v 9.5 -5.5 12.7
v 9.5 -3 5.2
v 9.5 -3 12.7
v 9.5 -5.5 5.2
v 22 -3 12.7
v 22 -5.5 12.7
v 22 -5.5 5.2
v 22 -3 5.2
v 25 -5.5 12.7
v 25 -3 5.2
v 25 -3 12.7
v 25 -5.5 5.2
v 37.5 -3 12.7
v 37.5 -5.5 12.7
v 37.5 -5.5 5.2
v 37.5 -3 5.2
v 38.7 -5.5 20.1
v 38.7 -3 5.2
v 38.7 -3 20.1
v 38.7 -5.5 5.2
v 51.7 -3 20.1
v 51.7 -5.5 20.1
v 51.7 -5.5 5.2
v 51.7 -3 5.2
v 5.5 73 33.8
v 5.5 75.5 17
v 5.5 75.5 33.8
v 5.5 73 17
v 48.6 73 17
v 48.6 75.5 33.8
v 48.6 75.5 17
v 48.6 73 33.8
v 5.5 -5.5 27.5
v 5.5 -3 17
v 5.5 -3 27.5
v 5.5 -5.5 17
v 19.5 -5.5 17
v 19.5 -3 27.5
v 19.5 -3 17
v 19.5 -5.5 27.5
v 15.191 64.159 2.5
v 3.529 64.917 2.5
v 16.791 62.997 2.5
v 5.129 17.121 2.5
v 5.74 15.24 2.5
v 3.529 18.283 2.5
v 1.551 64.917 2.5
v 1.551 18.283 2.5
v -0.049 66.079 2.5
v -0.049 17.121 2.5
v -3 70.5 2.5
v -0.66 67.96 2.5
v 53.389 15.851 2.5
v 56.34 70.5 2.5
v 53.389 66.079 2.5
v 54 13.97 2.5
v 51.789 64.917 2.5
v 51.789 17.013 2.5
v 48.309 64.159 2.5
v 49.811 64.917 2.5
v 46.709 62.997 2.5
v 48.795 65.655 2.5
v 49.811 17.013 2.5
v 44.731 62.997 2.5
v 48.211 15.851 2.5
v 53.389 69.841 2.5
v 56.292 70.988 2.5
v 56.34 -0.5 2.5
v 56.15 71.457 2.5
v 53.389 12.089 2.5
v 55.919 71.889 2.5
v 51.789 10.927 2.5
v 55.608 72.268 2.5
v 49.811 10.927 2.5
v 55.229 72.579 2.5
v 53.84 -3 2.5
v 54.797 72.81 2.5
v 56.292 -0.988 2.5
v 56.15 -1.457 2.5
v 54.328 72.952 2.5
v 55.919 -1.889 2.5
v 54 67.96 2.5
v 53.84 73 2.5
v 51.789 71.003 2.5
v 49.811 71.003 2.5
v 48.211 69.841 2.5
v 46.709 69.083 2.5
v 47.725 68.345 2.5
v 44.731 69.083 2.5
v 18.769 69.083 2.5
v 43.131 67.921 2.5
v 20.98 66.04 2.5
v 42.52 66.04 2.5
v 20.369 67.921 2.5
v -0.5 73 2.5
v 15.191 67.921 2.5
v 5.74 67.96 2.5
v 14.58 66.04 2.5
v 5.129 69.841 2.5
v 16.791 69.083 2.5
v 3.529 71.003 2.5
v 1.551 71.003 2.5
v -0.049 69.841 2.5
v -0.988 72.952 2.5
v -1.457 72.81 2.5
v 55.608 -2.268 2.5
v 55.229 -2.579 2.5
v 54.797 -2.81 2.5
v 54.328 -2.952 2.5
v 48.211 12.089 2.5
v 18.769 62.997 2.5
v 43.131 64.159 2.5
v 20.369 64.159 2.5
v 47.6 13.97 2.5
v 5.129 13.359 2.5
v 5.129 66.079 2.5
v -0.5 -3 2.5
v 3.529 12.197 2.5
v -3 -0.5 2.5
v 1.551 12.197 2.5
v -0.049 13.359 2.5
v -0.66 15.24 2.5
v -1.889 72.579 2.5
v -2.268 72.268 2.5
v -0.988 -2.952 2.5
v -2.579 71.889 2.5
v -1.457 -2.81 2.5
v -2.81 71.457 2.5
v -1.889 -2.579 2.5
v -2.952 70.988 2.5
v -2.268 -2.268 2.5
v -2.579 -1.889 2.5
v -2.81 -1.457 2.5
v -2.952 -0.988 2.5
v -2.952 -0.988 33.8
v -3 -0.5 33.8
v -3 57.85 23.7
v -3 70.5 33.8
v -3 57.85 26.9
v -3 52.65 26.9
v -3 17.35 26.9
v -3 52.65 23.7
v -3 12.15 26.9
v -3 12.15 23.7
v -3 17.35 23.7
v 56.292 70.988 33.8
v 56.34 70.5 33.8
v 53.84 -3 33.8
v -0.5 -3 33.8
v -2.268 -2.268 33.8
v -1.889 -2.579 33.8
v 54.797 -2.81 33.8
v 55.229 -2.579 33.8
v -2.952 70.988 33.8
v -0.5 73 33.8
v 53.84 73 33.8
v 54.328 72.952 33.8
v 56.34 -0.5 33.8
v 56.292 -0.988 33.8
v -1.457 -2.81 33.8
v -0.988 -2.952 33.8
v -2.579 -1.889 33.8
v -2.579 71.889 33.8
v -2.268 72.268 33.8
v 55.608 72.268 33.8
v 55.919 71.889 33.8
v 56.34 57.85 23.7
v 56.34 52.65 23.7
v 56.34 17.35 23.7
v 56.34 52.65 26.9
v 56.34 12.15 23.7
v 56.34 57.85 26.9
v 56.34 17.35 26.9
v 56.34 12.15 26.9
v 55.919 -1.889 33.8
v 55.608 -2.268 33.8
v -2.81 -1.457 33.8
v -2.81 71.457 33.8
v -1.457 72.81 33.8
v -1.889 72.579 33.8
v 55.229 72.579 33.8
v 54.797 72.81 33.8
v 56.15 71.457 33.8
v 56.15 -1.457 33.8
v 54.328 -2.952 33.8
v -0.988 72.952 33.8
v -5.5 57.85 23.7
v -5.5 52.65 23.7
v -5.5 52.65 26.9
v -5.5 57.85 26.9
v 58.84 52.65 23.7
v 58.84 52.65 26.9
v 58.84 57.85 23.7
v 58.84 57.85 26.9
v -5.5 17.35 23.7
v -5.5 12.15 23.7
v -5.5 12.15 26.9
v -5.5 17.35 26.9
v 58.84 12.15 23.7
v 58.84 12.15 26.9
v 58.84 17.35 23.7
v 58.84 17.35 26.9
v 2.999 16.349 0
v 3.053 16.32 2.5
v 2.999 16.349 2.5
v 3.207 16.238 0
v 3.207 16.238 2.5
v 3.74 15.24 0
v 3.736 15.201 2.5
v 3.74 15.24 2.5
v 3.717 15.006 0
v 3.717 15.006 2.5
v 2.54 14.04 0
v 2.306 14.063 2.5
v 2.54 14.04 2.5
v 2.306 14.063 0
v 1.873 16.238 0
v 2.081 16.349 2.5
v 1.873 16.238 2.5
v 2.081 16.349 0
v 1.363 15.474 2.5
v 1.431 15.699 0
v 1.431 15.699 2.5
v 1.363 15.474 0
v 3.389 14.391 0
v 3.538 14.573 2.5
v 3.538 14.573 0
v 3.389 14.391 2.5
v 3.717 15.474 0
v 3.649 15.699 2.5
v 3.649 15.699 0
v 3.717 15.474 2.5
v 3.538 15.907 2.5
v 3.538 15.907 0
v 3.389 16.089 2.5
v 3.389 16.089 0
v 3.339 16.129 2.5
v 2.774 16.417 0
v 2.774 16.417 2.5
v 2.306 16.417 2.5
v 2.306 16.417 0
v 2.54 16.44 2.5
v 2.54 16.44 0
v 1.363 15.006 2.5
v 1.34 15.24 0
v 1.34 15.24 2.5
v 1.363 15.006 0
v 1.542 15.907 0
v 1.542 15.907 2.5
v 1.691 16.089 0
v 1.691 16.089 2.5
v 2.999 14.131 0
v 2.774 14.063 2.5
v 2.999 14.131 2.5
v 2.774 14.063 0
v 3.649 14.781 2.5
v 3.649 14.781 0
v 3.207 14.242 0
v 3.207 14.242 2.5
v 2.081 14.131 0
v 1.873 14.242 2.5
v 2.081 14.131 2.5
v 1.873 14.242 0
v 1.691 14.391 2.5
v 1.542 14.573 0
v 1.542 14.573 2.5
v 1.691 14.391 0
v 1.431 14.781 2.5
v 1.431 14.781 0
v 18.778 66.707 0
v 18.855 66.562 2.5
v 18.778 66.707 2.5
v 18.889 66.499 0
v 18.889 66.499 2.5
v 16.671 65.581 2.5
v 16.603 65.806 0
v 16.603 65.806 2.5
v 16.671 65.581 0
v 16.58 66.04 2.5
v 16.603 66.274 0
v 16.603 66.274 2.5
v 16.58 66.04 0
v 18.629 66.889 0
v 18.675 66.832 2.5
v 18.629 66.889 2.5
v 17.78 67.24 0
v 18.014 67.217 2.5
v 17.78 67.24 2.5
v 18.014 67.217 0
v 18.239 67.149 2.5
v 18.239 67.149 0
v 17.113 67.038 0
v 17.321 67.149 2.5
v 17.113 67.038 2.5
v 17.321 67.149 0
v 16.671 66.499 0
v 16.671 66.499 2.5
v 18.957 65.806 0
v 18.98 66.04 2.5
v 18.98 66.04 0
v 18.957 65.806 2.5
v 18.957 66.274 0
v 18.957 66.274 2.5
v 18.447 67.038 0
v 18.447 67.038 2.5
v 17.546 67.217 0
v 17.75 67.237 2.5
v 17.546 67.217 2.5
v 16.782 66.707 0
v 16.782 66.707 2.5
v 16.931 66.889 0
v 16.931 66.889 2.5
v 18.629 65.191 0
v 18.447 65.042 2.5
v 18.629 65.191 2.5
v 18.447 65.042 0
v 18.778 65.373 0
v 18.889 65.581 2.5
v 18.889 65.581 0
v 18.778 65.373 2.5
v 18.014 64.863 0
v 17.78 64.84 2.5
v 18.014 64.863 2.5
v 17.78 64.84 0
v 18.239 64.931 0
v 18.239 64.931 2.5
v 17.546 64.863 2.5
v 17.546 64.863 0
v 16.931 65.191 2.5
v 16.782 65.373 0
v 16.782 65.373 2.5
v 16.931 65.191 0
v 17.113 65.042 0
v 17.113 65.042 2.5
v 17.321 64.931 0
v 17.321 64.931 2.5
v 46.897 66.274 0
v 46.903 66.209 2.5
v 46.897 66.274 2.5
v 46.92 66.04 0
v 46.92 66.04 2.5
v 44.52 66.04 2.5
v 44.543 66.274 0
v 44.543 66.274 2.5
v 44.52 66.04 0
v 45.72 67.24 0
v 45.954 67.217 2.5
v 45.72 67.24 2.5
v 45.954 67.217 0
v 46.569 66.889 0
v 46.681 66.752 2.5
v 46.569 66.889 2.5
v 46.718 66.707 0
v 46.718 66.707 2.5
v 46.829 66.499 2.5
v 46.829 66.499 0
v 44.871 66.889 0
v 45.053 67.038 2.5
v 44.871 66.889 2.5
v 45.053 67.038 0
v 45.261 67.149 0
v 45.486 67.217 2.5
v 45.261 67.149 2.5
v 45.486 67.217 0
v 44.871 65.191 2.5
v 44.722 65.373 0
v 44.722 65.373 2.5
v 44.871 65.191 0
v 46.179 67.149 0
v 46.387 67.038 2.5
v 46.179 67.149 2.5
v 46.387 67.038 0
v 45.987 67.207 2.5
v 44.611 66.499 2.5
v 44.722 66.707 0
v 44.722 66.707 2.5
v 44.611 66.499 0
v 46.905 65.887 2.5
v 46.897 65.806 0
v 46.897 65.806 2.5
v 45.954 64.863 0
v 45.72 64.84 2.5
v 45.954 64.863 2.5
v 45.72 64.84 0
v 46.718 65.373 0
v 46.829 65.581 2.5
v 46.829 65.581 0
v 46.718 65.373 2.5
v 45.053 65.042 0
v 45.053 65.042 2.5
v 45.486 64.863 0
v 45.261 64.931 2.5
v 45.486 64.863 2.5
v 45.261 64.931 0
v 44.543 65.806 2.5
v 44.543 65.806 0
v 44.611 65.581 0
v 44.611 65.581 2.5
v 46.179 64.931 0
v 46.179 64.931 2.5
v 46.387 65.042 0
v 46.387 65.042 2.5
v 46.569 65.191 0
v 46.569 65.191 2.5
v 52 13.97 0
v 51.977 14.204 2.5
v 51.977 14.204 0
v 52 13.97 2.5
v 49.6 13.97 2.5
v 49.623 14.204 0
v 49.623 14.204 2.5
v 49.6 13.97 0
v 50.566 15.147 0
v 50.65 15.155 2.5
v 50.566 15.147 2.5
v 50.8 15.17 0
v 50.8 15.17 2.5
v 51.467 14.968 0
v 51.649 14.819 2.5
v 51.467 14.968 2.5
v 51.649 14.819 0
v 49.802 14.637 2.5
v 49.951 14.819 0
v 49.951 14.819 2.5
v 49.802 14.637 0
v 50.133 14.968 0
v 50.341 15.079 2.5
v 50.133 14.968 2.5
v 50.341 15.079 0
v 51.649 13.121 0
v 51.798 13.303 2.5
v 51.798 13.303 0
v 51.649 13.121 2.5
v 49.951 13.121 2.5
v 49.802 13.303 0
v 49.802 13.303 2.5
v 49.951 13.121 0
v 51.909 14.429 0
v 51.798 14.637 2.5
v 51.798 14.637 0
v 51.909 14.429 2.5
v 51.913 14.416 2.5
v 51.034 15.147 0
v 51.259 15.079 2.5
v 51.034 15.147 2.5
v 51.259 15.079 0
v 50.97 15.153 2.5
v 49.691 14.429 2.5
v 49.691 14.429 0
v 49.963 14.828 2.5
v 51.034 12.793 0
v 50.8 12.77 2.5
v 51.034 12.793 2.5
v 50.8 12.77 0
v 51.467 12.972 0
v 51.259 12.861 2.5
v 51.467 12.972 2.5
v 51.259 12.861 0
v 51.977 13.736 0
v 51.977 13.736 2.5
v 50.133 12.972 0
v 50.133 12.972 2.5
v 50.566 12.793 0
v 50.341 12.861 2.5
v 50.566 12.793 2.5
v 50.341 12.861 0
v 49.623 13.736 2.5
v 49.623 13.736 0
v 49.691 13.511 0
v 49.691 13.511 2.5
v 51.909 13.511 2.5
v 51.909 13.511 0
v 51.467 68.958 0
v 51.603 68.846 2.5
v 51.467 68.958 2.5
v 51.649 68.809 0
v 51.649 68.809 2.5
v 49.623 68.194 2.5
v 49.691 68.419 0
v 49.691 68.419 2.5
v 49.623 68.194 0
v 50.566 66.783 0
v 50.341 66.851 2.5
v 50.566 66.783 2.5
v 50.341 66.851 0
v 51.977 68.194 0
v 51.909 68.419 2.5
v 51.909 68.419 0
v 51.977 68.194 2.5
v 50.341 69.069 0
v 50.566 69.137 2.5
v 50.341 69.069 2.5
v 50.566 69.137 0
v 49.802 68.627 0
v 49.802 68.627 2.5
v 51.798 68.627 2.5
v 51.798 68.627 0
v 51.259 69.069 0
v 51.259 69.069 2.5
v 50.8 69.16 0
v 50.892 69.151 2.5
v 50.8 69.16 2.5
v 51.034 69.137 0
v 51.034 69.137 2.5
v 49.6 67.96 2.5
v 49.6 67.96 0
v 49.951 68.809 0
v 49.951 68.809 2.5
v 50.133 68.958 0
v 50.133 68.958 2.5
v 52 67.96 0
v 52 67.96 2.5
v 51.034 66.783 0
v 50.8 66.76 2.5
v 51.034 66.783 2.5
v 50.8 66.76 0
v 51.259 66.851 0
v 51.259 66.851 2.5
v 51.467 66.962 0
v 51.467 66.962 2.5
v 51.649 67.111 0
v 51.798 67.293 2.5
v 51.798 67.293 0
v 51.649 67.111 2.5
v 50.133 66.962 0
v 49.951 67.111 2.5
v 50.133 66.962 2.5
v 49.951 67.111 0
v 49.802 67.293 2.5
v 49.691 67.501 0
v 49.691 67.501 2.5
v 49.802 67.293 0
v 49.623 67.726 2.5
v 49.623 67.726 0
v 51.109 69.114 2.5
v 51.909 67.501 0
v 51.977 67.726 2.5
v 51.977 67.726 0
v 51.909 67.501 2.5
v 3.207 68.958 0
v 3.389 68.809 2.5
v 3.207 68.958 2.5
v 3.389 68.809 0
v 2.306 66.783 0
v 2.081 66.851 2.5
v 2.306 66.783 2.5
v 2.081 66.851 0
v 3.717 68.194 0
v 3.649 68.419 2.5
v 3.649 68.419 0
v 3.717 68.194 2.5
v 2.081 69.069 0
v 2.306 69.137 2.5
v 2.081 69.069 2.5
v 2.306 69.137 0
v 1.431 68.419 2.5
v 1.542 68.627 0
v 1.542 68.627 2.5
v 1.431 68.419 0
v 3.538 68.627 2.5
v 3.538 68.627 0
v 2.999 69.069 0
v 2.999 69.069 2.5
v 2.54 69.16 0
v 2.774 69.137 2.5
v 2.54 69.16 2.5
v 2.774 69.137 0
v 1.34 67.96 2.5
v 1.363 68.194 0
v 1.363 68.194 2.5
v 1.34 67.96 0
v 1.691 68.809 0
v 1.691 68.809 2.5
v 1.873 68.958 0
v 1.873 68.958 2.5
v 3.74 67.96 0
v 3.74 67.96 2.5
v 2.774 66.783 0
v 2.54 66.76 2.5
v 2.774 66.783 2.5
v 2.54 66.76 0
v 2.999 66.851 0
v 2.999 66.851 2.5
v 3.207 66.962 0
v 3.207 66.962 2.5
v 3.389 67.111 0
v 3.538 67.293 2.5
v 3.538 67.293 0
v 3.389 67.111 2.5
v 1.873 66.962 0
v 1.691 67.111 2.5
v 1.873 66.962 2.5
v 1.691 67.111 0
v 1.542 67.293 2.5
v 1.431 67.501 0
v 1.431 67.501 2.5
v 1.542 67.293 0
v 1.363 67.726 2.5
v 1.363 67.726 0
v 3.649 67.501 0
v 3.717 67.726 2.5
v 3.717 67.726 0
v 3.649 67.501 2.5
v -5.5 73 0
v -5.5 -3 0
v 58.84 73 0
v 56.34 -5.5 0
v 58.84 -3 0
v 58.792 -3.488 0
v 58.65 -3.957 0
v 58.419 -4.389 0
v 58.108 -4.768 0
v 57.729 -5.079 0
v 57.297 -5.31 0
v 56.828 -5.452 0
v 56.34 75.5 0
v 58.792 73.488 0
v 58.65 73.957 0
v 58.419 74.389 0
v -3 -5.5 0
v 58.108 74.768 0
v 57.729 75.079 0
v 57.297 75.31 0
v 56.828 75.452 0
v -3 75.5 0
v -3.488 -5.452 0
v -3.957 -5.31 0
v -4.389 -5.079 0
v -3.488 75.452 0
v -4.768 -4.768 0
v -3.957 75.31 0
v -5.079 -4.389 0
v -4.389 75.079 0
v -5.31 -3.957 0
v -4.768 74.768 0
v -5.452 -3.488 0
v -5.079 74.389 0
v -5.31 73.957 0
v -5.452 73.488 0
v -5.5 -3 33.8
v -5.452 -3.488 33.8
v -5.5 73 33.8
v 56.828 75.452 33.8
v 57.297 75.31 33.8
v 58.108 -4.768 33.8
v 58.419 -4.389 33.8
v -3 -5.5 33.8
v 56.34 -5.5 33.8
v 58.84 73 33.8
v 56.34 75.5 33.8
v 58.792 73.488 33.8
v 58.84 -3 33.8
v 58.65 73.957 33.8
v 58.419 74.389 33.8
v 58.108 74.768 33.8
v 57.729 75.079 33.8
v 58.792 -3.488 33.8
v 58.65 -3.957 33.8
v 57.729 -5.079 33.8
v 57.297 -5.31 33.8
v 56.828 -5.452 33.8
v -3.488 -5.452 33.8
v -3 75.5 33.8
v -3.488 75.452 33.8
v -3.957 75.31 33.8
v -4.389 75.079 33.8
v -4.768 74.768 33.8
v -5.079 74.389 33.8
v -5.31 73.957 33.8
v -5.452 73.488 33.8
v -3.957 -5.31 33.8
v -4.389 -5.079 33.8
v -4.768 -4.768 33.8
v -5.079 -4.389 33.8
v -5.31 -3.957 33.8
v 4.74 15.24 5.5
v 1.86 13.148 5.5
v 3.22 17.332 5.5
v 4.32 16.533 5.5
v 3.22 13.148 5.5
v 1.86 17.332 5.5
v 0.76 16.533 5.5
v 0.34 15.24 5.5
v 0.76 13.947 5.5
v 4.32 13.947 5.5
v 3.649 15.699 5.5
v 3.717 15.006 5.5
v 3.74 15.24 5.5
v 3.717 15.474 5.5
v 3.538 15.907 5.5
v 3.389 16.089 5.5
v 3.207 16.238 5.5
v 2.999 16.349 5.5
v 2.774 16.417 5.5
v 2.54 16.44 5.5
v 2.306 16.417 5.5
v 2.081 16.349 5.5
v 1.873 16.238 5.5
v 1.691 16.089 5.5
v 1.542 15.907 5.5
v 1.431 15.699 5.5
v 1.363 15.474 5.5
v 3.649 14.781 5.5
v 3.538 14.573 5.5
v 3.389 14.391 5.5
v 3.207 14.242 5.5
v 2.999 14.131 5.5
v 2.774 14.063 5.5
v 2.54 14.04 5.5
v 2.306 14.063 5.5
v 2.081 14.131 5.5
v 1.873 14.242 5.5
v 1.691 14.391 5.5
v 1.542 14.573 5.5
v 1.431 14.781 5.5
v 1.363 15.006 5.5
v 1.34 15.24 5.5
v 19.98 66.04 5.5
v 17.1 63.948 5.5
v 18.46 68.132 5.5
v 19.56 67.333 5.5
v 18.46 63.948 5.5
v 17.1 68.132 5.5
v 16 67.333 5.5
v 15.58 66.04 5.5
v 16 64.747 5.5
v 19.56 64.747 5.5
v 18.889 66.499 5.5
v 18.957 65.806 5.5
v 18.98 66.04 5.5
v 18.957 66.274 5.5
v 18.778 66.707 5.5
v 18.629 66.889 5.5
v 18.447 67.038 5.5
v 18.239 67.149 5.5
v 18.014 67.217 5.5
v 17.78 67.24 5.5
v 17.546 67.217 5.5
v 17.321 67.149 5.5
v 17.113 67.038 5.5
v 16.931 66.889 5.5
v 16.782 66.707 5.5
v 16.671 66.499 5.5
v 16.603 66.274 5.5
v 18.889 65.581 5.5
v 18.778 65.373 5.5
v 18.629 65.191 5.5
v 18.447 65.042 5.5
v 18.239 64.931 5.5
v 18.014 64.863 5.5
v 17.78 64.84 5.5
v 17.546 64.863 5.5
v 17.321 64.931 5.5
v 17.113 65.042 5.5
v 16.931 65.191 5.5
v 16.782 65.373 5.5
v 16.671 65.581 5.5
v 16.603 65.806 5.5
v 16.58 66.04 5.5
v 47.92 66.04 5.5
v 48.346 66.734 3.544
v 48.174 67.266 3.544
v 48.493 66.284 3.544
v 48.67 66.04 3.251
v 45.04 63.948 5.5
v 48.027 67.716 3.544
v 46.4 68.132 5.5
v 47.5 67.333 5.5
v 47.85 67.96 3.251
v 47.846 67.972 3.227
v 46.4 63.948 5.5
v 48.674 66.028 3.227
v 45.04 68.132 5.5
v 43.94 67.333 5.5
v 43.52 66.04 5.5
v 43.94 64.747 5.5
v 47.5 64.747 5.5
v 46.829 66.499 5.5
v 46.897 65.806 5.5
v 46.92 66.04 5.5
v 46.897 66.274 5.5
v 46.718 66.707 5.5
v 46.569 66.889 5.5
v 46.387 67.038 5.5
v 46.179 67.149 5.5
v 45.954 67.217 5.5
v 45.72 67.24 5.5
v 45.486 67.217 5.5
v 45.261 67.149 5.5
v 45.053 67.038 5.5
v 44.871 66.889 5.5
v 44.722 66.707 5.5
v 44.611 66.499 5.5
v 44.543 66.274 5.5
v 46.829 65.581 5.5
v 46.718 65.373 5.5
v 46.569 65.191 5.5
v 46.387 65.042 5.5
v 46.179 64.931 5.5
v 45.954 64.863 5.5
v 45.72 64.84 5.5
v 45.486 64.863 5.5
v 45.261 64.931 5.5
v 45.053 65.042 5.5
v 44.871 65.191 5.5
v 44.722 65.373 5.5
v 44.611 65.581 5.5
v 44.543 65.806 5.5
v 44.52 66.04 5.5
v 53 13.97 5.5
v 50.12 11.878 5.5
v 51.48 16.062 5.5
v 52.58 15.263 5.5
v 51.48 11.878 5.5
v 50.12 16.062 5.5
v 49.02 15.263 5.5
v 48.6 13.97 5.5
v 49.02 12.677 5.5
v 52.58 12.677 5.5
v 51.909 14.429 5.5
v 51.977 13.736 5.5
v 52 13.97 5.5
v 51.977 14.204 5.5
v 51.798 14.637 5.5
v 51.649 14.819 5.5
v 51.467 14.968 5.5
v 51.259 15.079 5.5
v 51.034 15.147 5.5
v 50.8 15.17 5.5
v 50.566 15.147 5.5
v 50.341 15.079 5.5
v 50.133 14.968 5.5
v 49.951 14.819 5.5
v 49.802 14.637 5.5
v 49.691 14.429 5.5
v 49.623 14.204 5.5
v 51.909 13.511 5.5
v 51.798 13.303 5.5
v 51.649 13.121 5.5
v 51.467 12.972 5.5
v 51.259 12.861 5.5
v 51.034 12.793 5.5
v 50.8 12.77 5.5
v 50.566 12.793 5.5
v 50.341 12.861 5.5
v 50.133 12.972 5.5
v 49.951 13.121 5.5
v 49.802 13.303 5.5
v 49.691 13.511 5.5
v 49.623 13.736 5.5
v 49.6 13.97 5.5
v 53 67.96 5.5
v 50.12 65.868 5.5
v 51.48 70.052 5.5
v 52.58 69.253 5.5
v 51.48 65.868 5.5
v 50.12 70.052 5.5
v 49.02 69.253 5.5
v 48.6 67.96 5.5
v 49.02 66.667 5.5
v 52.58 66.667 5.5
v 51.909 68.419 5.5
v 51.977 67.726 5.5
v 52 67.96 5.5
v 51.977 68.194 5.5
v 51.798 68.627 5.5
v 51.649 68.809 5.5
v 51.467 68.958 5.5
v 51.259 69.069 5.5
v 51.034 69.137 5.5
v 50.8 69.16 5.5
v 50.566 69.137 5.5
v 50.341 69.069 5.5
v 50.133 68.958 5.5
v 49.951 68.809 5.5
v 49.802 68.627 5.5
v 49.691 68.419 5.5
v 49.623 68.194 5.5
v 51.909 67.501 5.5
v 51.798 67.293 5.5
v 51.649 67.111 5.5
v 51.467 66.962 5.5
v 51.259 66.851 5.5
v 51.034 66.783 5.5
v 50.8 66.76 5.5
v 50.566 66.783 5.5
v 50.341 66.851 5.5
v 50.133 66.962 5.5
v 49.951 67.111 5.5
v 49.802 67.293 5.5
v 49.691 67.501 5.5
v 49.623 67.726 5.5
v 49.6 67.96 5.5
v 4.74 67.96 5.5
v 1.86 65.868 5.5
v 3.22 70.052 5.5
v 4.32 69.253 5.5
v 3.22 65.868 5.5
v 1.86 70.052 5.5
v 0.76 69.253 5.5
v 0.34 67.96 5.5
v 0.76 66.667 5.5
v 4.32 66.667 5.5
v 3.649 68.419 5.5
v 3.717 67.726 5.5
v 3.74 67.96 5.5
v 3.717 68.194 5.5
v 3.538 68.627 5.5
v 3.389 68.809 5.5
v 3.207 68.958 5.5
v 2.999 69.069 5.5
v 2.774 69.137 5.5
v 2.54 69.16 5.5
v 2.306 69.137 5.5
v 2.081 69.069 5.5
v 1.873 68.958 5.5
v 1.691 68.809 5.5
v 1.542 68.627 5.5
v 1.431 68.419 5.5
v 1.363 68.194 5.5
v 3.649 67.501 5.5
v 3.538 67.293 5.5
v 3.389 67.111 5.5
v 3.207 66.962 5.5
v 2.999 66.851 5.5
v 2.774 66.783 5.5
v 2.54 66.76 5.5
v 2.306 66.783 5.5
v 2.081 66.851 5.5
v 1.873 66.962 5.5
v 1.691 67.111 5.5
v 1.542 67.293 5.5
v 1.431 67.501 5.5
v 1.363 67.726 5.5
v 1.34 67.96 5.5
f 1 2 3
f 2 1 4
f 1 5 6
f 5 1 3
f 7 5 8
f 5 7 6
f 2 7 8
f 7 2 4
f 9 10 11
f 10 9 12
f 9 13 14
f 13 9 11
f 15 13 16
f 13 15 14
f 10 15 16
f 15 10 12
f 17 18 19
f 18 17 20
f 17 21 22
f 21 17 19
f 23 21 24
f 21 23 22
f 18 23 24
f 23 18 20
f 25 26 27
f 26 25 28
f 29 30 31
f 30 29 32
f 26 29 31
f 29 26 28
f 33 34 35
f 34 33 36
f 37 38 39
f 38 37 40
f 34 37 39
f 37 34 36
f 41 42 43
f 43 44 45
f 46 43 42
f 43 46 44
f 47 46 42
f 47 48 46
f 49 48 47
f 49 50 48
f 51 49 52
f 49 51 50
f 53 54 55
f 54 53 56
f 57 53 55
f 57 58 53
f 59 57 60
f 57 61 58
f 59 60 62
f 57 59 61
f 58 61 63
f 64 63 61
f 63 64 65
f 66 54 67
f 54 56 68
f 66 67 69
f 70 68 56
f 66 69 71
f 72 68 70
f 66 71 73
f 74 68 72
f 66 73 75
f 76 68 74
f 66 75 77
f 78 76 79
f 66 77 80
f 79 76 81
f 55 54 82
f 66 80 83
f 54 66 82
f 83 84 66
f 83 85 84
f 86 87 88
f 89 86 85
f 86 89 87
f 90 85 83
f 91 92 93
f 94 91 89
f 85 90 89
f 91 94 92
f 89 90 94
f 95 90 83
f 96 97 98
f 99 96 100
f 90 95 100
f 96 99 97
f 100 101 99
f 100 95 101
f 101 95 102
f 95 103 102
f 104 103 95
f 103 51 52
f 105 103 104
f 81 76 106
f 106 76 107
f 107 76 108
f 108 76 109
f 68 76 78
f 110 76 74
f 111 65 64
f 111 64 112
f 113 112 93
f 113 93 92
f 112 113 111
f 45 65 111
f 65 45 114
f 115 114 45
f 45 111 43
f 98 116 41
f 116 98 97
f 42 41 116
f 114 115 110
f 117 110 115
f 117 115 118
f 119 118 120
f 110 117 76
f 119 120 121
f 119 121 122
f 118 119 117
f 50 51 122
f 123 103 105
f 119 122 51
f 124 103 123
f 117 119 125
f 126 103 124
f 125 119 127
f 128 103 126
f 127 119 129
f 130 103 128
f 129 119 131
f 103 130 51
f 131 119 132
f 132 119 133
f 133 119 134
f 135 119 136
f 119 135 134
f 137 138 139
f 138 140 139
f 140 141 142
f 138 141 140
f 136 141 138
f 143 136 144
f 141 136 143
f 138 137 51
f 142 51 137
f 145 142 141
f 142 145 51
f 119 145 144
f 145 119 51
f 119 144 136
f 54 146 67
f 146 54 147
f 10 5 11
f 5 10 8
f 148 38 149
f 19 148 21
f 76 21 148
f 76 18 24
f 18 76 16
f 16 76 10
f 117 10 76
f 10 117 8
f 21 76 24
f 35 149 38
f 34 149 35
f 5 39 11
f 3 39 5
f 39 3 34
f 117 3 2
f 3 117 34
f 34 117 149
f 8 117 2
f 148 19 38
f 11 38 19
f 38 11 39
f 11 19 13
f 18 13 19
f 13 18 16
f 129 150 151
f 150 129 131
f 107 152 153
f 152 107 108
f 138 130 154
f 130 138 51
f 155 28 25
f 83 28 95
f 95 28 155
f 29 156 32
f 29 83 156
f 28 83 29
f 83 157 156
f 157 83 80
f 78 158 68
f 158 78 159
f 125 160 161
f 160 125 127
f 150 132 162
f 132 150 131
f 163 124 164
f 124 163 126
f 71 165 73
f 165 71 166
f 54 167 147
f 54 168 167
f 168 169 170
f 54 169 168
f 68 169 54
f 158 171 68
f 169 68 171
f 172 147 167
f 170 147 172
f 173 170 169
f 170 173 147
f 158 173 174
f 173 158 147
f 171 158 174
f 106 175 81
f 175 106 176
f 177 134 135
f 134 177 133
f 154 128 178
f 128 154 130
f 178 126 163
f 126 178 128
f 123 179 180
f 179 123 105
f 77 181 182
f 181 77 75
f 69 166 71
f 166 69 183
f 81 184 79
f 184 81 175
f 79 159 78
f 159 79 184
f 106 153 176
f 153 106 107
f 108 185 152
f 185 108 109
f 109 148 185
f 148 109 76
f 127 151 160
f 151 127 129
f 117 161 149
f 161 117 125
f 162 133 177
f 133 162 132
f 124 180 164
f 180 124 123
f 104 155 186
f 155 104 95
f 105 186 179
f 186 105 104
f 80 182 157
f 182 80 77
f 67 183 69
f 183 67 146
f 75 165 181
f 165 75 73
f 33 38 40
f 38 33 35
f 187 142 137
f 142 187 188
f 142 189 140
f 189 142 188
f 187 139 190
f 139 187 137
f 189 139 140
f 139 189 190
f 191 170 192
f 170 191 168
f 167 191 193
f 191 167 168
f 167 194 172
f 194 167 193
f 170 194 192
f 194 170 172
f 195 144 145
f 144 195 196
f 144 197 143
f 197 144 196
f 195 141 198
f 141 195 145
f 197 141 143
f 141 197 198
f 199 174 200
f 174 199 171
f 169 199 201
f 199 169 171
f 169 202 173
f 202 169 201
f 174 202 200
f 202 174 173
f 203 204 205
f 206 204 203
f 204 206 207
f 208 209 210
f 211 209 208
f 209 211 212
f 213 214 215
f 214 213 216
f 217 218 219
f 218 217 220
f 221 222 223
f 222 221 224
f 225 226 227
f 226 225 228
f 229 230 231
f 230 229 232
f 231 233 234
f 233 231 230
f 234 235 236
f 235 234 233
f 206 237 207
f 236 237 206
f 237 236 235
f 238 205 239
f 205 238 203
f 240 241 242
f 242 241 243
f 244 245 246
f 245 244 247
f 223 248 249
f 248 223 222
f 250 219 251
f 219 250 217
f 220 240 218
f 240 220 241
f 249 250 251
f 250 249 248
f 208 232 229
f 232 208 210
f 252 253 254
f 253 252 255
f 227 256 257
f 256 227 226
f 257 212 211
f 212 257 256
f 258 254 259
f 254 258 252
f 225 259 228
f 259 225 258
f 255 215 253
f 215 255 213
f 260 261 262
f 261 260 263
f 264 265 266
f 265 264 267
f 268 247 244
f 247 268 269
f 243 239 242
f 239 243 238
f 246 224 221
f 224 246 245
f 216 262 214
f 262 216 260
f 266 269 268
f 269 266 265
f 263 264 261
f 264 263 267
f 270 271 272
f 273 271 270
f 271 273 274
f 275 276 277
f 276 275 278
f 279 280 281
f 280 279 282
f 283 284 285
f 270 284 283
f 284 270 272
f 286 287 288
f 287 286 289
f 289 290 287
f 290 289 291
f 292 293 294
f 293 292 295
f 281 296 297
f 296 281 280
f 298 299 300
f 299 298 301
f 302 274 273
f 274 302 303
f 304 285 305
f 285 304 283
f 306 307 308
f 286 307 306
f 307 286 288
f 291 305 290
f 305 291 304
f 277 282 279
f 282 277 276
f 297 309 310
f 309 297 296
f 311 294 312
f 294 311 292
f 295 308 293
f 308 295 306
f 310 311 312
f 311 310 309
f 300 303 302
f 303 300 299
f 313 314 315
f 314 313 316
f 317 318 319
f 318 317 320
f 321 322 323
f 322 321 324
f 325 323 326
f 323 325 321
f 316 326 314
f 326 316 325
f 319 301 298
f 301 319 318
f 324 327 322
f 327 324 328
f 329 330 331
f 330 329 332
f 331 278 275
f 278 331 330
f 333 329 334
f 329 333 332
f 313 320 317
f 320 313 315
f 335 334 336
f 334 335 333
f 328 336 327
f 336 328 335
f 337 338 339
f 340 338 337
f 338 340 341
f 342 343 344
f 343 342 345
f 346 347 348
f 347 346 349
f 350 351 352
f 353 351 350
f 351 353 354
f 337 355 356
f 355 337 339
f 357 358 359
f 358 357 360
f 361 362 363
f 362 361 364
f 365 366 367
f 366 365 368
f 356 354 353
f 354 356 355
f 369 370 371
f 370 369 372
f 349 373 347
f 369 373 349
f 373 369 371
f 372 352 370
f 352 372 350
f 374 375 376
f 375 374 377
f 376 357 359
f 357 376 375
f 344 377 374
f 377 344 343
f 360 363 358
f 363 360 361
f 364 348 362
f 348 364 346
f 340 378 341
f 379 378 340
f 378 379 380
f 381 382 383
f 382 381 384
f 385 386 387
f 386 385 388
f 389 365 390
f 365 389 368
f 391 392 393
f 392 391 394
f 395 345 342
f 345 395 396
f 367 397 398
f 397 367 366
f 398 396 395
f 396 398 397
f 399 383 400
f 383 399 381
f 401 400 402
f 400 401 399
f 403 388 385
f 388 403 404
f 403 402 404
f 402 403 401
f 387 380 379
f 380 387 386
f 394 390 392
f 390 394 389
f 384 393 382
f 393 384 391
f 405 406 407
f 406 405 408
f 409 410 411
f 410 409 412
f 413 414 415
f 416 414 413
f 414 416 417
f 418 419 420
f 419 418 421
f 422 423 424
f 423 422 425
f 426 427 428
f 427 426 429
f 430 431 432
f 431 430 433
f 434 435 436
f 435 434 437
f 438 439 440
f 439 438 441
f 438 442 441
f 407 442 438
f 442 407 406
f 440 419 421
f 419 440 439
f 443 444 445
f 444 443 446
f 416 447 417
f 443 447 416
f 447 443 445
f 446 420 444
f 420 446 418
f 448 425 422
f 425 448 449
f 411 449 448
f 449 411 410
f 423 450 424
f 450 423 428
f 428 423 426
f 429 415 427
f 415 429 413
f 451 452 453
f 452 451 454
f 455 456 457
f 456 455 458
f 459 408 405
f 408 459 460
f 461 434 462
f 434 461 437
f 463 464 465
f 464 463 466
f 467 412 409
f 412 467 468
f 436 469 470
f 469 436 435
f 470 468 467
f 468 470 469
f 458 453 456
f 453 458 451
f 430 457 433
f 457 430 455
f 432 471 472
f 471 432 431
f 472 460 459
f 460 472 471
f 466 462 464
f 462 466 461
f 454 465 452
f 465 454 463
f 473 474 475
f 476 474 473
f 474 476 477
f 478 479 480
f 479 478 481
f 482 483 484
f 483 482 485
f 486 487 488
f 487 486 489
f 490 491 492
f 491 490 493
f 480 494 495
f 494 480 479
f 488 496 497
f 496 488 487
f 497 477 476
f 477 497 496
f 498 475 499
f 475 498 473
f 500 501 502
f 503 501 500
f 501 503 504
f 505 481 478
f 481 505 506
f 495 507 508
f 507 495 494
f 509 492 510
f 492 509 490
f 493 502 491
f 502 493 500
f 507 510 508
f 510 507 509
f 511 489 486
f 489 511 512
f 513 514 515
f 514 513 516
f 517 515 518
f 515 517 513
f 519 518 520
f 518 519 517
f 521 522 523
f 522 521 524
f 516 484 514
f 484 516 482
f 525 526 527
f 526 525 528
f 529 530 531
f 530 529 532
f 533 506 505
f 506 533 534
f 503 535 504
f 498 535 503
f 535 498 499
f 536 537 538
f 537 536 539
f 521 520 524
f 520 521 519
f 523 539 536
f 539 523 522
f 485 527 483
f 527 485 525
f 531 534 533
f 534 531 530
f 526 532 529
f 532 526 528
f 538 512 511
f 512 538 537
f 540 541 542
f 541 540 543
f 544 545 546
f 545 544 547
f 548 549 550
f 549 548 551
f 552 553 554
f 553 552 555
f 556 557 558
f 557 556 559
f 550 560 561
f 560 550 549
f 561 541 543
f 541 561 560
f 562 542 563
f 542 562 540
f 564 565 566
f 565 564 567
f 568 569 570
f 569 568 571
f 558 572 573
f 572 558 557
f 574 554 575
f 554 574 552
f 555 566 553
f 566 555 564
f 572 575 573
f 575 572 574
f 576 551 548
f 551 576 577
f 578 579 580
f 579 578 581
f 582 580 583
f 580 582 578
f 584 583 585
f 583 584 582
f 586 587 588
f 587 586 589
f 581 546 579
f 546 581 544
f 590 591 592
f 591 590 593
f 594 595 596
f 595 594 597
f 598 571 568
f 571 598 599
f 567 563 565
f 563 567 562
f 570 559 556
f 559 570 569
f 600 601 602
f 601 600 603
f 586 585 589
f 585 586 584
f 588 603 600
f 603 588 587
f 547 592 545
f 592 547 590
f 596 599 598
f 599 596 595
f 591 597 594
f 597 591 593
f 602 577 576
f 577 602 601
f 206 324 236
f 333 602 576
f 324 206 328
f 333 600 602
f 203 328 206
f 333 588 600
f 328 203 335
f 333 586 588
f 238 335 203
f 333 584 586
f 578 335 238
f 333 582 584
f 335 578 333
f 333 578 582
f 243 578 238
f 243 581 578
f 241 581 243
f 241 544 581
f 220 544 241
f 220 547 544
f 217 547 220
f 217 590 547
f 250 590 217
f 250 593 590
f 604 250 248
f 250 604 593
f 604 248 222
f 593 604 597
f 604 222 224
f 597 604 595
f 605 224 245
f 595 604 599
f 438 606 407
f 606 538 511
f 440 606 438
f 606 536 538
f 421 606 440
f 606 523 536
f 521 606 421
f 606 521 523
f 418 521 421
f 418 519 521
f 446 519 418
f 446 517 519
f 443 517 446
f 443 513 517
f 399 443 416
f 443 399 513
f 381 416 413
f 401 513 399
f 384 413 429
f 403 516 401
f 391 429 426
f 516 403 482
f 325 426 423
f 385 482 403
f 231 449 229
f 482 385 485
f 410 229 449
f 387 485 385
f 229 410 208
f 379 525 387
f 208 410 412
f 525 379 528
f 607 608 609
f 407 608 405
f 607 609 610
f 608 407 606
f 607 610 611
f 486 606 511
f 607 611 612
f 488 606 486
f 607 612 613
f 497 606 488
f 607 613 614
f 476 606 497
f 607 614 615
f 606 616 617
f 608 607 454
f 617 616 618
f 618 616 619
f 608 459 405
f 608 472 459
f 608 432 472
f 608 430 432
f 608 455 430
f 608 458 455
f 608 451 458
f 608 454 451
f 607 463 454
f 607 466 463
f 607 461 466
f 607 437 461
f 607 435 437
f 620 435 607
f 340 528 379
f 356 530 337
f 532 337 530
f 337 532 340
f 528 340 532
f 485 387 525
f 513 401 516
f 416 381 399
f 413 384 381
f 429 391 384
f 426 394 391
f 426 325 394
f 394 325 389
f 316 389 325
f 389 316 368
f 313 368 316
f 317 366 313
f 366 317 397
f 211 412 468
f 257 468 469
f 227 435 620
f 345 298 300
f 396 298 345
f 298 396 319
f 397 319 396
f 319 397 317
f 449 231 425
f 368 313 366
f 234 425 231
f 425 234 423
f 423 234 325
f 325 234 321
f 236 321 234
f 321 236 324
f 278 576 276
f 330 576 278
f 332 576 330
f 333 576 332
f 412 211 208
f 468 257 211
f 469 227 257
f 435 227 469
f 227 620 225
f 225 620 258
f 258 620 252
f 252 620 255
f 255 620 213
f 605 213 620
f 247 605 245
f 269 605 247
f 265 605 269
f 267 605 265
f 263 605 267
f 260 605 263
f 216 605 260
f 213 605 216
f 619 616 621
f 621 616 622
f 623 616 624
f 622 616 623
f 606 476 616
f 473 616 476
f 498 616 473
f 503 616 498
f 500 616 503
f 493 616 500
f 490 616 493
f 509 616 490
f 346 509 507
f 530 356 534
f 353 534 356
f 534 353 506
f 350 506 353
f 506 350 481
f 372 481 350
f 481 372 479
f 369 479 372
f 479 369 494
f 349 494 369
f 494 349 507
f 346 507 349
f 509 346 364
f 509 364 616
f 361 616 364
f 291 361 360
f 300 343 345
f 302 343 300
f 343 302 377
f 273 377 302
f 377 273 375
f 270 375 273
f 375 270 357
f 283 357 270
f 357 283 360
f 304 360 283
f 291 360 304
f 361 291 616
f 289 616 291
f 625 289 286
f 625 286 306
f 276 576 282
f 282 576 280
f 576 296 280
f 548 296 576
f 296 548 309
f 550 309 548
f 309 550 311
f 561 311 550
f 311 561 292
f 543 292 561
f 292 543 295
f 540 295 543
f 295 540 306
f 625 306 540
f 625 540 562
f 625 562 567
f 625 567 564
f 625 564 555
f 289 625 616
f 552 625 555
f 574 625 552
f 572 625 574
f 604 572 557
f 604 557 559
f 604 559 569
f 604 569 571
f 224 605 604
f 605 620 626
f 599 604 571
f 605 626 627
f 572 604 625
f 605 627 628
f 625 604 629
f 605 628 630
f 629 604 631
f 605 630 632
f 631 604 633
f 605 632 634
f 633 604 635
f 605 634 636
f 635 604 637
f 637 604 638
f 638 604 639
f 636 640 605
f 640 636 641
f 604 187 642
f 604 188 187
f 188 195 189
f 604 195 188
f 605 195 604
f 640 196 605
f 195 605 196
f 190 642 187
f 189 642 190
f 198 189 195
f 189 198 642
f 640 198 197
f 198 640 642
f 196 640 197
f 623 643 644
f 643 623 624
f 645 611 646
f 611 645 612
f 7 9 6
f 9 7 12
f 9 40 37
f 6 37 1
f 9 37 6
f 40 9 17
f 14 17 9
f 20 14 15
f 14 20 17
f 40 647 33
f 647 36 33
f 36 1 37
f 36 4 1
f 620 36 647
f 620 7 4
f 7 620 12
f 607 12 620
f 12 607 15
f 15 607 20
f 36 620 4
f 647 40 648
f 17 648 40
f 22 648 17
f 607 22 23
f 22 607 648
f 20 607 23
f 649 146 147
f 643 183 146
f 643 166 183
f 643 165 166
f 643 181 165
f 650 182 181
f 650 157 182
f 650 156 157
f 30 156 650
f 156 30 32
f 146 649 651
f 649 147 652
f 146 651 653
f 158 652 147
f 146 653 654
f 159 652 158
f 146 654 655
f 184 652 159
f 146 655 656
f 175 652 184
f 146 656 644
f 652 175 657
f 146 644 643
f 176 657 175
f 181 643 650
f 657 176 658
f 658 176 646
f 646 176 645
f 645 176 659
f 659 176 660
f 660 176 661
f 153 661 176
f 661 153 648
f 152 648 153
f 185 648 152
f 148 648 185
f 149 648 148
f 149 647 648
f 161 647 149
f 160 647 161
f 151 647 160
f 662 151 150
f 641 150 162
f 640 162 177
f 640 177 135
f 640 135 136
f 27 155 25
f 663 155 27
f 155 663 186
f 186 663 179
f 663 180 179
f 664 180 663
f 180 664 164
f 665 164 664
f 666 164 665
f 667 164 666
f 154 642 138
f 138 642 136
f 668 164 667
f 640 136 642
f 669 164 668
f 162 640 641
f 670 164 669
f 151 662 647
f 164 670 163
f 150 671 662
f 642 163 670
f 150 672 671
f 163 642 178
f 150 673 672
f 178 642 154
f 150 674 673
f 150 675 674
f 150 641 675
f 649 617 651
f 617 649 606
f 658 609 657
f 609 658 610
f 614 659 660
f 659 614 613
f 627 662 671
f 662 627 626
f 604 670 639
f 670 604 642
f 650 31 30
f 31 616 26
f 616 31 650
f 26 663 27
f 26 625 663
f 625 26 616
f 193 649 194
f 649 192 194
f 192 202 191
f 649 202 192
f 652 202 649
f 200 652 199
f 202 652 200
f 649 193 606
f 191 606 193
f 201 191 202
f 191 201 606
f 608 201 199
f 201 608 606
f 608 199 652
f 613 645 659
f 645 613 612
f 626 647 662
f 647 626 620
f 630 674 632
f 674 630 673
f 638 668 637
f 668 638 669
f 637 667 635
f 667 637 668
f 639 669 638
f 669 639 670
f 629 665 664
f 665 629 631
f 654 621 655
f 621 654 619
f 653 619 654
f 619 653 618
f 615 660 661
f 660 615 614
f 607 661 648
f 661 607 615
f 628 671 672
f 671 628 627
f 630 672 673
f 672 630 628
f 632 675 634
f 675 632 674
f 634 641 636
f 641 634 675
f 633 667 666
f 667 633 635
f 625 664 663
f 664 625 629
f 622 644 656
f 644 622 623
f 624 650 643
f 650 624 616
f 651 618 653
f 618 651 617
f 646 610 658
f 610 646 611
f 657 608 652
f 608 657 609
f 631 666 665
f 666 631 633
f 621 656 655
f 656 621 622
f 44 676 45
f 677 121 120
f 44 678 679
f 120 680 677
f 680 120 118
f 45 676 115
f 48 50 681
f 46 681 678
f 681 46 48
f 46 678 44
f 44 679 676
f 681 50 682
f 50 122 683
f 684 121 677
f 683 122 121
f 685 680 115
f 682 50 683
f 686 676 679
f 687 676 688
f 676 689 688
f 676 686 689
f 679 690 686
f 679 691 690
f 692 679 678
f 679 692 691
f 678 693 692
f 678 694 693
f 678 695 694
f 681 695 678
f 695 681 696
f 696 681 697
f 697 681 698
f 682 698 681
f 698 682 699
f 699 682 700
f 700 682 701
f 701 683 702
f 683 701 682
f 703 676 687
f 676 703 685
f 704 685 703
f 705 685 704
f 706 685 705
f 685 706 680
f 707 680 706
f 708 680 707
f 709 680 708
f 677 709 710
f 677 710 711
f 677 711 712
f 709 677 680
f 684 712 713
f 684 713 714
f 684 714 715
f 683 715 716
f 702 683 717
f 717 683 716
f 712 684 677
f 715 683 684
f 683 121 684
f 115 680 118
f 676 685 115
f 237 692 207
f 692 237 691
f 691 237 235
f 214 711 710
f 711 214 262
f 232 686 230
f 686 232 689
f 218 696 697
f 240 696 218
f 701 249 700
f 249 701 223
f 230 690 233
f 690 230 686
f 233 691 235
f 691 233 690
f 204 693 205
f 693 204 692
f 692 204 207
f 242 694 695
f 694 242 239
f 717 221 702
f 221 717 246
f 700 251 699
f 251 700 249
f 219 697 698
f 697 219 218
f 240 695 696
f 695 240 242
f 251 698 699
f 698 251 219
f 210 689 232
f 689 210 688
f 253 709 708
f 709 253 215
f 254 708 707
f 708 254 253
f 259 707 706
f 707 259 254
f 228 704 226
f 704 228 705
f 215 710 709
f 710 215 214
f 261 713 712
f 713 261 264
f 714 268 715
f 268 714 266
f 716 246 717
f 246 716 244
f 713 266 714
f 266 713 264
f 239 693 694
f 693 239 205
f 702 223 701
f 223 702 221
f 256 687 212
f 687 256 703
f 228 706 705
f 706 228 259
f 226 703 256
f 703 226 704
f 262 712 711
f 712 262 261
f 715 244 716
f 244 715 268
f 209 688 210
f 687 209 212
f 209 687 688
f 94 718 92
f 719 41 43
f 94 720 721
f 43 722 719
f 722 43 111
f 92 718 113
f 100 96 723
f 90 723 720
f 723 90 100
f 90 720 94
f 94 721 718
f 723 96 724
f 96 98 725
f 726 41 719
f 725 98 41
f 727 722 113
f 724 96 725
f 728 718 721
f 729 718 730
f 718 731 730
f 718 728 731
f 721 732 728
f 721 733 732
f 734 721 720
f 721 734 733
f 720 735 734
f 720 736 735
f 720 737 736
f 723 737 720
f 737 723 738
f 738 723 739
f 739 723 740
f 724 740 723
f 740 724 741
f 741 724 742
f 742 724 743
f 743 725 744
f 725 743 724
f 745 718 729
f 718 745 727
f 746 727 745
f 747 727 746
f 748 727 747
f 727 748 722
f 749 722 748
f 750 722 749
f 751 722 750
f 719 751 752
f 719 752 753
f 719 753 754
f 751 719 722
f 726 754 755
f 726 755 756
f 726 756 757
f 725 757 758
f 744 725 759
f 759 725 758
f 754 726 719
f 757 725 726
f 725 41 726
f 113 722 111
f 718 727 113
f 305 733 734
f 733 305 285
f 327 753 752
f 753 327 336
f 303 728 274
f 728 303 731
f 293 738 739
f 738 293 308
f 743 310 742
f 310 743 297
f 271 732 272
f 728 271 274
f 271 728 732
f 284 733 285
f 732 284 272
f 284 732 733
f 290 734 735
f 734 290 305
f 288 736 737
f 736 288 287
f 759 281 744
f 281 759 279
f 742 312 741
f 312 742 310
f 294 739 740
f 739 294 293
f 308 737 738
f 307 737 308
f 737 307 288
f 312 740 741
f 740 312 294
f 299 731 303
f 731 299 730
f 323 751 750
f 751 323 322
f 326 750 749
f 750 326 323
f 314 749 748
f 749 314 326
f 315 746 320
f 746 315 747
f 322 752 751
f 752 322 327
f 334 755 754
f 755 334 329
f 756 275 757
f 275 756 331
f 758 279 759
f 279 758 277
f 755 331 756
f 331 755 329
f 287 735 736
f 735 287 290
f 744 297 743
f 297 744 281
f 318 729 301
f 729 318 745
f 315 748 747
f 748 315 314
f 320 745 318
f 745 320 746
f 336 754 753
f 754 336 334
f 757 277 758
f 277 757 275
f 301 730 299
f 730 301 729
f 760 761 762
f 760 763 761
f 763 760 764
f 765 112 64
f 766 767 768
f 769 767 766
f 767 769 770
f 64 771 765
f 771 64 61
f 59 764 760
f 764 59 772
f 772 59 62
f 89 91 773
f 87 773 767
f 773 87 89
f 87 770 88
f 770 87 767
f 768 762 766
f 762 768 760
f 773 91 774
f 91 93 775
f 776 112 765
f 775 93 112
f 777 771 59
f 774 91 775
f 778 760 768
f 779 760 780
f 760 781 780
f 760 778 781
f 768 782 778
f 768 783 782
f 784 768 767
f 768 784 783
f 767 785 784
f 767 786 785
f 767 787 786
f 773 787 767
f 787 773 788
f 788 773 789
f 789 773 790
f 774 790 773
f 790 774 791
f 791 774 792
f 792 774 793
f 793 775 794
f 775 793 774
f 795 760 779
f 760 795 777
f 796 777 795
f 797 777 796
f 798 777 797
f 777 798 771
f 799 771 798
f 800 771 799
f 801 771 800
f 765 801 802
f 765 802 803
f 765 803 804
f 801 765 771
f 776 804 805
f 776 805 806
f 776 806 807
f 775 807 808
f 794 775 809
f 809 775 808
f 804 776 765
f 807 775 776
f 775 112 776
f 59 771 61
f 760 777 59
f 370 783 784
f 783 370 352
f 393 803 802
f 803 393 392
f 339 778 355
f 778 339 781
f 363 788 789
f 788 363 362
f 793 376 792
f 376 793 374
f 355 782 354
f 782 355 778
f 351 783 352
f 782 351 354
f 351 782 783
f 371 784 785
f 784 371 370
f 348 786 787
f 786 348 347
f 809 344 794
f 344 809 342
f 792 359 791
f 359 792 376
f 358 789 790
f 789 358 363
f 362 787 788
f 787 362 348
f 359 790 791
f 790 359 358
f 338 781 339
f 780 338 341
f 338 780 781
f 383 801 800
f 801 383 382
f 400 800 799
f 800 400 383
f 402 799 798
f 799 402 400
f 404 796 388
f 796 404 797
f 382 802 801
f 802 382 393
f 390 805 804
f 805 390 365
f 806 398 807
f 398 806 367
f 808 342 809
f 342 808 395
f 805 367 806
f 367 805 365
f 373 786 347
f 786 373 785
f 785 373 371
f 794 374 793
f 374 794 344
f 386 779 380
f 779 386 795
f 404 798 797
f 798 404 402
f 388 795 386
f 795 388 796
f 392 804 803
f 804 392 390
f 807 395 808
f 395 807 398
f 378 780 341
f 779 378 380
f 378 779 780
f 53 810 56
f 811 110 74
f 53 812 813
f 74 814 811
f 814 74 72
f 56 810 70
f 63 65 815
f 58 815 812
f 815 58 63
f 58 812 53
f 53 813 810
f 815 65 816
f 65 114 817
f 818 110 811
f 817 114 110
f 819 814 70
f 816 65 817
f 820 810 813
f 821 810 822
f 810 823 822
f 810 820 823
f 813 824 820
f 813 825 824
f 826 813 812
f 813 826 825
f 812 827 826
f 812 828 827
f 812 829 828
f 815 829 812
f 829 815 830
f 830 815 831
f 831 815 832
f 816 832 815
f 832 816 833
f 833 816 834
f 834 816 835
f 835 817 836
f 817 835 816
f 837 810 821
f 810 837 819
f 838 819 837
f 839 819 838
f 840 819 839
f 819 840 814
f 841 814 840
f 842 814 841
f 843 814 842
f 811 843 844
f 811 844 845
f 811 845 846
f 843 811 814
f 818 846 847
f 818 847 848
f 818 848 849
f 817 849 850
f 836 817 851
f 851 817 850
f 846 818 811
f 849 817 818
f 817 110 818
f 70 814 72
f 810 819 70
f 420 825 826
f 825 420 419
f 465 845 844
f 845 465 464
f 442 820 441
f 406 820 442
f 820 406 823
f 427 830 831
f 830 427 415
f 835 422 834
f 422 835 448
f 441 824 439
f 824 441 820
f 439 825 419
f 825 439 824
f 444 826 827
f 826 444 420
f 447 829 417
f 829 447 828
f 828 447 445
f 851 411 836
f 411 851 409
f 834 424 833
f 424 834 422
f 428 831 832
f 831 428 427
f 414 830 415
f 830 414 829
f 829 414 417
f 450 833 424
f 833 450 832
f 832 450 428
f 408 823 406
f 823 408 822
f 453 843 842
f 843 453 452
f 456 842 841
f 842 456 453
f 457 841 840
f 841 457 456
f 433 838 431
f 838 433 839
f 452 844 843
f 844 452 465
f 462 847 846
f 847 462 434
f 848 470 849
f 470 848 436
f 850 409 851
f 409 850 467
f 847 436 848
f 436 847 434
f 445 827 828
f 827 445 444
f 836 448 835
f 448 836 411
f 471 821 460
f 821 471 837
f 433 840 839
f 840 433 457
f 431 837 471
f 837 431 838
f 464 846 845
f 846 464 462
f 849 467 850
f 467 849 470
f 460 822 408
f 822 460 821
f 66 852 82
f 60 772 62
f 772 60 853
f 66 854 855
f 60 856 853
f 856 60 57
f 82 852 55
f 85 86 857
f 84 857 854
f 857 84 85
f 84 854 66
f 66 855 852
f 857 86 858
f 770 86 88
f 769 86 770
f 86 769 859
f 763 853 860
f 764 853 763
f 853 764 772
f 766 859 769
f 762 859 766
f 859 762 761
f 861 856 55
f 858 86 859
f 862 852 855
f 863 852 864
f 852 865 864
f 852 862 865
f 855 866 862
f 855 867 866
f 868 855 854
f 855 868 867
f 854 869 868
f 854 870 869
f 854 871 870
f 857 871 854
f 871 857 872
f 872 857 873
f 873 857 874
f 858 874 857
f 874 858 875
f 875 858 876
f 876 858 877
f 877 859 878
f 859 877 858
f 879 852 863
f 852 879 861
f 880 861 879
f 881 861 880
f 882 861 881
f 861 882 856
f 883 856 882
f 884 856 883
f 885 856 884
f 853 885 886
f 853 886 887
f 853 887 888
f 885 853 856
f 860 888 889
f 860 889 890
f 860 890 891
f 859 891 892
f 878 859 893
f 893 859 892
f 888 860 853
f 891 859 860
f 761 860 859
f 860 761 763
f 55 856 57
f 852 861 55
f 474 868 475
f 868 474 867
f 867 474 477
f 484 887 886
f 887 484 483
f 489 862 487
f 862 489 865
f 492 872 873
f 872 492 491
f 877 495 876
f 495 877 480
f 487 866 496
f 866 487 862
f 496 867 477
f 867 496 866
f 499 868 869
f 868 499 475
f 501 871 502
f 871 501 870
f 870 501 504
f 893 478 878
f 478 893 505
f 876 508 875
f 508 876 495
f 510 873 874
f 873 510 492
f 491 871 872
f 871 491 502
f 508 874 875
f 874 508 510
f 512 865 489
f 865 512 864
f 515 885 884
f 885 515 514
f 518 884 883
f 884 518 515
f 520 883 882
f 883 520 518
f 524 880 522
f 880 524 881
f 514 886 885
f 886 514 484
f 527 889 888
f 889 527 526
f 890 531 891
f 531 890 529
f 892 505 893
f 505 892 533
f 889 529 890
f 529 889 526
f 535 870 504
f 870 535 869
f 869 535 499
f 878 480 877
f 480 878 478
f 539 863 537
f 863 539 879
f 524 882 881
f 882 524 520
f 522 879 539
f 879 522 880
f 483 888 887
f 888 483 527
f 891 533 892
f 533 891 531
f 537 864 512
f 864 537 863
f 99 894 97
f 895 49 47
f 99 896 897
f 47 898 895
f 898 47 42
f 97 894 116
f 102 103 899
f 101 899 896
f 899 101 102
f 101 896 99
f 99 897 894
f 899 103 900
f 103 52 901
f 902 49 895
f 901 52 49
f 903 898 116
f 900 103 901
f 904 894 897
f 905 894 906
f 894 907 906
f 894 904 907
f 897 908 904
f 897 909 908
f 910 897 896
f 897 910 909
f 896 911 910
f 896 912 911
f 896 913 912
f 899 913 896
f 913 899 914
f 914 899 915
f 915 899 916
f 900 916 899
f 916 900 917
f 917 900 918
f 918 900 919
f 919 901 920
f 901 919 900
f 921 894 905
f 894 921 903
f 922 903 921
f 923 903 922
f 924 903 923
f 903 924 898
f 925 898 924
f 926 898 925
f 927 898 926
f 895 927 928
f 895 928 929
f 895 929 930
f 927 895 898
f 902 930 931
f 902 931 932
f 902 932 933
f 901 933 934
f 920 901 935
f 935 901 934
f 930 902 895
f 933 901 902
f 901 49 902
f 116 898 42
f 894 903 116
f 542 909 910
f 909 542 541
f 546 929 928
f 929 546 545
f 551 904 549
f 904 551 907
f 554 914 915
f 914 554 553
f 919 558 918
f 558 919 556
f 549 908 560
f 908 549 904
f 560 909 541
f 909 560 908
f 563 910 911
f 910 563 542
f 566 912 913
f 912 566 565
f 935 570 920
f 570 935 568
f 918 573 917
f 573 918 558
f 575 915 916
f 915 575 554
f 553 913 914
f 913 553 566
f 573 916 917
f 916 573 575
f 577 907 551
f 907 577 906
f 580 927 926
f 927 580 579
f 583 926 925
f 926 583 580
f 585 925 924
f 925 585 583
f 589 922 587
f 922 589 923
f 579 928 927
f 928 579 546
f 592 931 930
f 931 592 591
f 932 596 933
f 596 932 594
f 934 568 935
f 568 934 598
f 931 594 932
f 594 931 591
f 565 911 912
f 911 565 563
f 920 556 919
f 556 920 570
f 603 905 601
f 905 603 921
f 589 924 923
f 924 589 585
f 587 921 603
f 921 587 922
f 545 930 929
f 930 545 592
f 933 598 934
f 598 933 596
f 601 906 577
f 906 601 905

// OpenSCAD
// file: pin_connectors/pins.scad
// Pin Connectors V3
// Tony Buser <tbuser@gmail.com>
// Modified by Emmett Lalish

object=0;//[0:pin,1:pinpeg,2:pinhole]
length=20;
diameter=8;
//Only affects pinhole
hole_twist=0;//[0:free,1:fixed]
//Only affects pinhole
hole_friction=0;//[0:loose,1:tight]
//Radial gap to help pins fit into tight holes
pin_tolerance=0.2;
//Extra gap to make loose hole
loose=0.3;
lip_height=3;
lip_thickness=1;
hf=hole_friction==0 ? false : true;
ht=hole_twist==0 ? false : true;

if(object==0)pin(h=length,r=diameter/2,lh=lip_height,lt=lip_thickness,t=pin_tolerance);
if(object==1)pinpeg(h=length,r=diameter/2,lh=lip_height,lt=lip_thickness,t=pin_tolerance);
if(object==2)pinhole(h=length,r=diameter/2,lh=lip_height,lt=lip_thickness,t=loose,
	tight=hf,fixed=ht);

module test() {
  tolerance = 0.3;
  
  translate([-12, 12, 0]) pinpeg(h=20);
  translate([12, 12, 0]) pintack(h=10);
  
  difference() {
    union() {
      translate([0, -12, 2.5]) cube(size = [59, 20, 5], center = true);
      translate([24, -12, 7.5]) cube(size = [12, 20, 15], center = true);
    }
    translate([-24, -12, 0]) pinhole(h=5, t=tolerance);
    translate([-12, -12, 0]) pinhole(h=5, t=tolerance, tight=false);
    translate([0, -12, 0]) pinhole(h=10, t=tolerance);
    translate([12, -12, 0]) pinhole(h=10, t=tolerance, tight=false);
    translate([24, -12, 15]) rotate([0, 180, 0]) pinhole(h=10, t=tolerance);
  }
}

module pinhole(h=10, r=4, lh=3, lt=1, t=0.3, tight=true, fixed=false) {
  // h = shaft height
  // r = shaft radius
  // lh = lip height
  // lt = lip thickness
  // t = extra tolerance for loose fit
  // tight = set to false if you want a joint that spins easily
  // fixed = set to true so pins can't spin
  
intersection(){
  union() {
	if (tight == true || fixed == true) {
      pin_solid(h, r, lh, lt);
	  translate([0,0,-t/2])cylinder(h=h+t, r=r, $fn=30);
	} else {
	  pin_solid(h, r+t/2, lh, lt);
	  translate([0,0,-t/2])cylinder(h=h+t, r=r+t/2, $fn=30);
	}
    
    
    // widen the entrance hole to make insertion easier
    //translate([0, 0, -0.1]) cylinder(h=lh/3, r2=r, r1=r+(t/2)+(lt/2),$fn=30);
  }
  if (fixed == true) {
	translate([-r*2, -r*0.75, -1])cube([r*4, r*1.5, h+2]);
  }
}}

module pin(h=10, r=4, lh=3, lt=1, t=0.2, side=false) {
  // h = shaft height
  // r = shaft radius
  // lh = lip height
  // lt = lip thickness
  // side = set to true if you want it printed horizontally

  if (side) {
    pin_horizontal(h, r, lh, lt, t);
  } else {
    pin_vertical(h, r, lh, lt, t);
  }
}

module pintack(h=10, r=4, lh=3, lt=1, t=0.2, bh=3, br=8.75) {
  // bh = base_height
  // br = base_radius
  
  union() {
    cylinder(h=bh, r=br);
    translate([0, 0, bh]) pin(h, r, lh, lt, t);
  }
}

module pinpeg(h=20, r=4, lh=3, lt=1, t=0.2) {
  union() {
    translate([0,-0.05, 0]) pin(h/2+0.1, r, lh, lt, t, side=true);
    translate([0,0.05, 0]) rotate([0, 0, 180]) pin(h/2+0.1, r, lh, lt, t, side=true);
  }
}

// just call pin instead, I made this module because it was easier to do the rotation option this way
// since openscad complains of recursion if I did it all in one module
module pin_vertical(h=10, r=4, lh=3, lt=1, t=0.2) {
  // h = shaft height
  // r = shaft radius
  // lh = lip height
  // lt = lip thickness

  difference() {
    pin_solid(h, r-t/2, lh, lt);
    
    // center cut
    translate([-lt*3/2, -(r*2+lt*2)/2, h/5+lt*3/2]) cube([lt*3, r*2+lt*2, h]);
    //translate([0, 0, h/4]) cylinder(h=h+lh, r=r/2.5, $fn=20);
    // center curve
    translate([0, 0, h/5+lt*3/2]) rotate([90, 0, 0]) cylinder(h=r*2, r=lt*3/2, center=true, $fn=20);
  
    // side cuts
    translate([-r*2, -r-r*0.75+t/2, -1]) cube([r*4, r, h+2]);
    translate([-r*2, r*0.75-t/2, -1]) cube([r*4, r, h+2]);
  }
}

// call pin with side=true instead of this
module pin_horizontal(h=10, r=4, lh=3, lt=1, t=0.2) {
  // h = shaft height
  // r = shaft radius
  // lh = lip height
  // lt = lip thickness
  translate([0, 0, r*0.75-t/2]) rotate([-90, 0, 0]) pin_vertical(h, r, lh, lt, t);
}

// this is mainly to make the pinhole module easier
module pin_solid(h=10, r=4, lh=3, lt=1) {
  union() {
    // shaft
    cylinder(h=h-lh, r=r, $fn=30);
    // lip
    // translate([0, 0, h-lh]) cylinder(h=lh*0.25, r1=r, r2=r+(lt/2), $fn=30);
    // translate([0, 0, h-lh+lh*0.25]) cylinder(h=lh*0.25, r2=r, r1=r+(lt/2), $fn=30);
    // translate([0, 0, h-lh+lh*0.50]) cylinder(h=lh*0.50, r1=r, r2=r-(lt/2), $fn=30);

    // translate([0, 0, h-lh]) cylinder(h=lh*0.50, r1=r, r2=r+(lt/2), $fn=30);
    // translate([0, 0, h-lh+lh*0.50]) cylinder(h=lh*0.50, r1=r+(lt/2), r2=r-(lt/3), $fn=30);    

    translate([0, 0, h-lh]) cylinder(h=lh*0.25, r1=r, r2=r+(lt/2), $fn=30);
    translate([0, 0, h-lh+lh*0.25]) cylinder(h=lh*0.25, r=r+(lt/2), $fn=30);    
    translate([0, 0, h-lh+lh*0.50]) cylinder(h=lh*0.50, r1=r+(lt/2), r2=r-(lt/2), $fn=30);    

    // translate([0, 0, h-lh]) cylinder(h=lh, r1=r+(lt/2), r2=1, $fn=30);
    // translate([0, 0, h-lh-lt/2]) cylinder(h=lt/2, r1=r, r2=r+(lt/2), $fn=30);
  }
}

module pinshaft(h=10, r=4, t=0.2, side=false){
flip=side ? 1 : 0;
translate(flip*[0,h/2,r*0.75-t/2])rotate(flip*[90,0,0])
intersection(){
	cylinder(h=h, r=r-t/2, $fn=30);
	translate([-r*2, -r*0.75+t/2, -1])cube([r*4, r*1.5-t, h+2]);
}
}
// main file
include <arduino.scad>

zeroDimensions = boardDimensions( ZERO ); // <-------------------- ZERO
bp6aDimensions = boardDimensions( BP6A );



module bp6a_zero_enclosure(){
    
translate([0, 0,-0])
    //color([0.5, 0.5, 0.5, 0.7]){
    shEnclosure();
    //}

}

bp6a_zero_enclosure();
